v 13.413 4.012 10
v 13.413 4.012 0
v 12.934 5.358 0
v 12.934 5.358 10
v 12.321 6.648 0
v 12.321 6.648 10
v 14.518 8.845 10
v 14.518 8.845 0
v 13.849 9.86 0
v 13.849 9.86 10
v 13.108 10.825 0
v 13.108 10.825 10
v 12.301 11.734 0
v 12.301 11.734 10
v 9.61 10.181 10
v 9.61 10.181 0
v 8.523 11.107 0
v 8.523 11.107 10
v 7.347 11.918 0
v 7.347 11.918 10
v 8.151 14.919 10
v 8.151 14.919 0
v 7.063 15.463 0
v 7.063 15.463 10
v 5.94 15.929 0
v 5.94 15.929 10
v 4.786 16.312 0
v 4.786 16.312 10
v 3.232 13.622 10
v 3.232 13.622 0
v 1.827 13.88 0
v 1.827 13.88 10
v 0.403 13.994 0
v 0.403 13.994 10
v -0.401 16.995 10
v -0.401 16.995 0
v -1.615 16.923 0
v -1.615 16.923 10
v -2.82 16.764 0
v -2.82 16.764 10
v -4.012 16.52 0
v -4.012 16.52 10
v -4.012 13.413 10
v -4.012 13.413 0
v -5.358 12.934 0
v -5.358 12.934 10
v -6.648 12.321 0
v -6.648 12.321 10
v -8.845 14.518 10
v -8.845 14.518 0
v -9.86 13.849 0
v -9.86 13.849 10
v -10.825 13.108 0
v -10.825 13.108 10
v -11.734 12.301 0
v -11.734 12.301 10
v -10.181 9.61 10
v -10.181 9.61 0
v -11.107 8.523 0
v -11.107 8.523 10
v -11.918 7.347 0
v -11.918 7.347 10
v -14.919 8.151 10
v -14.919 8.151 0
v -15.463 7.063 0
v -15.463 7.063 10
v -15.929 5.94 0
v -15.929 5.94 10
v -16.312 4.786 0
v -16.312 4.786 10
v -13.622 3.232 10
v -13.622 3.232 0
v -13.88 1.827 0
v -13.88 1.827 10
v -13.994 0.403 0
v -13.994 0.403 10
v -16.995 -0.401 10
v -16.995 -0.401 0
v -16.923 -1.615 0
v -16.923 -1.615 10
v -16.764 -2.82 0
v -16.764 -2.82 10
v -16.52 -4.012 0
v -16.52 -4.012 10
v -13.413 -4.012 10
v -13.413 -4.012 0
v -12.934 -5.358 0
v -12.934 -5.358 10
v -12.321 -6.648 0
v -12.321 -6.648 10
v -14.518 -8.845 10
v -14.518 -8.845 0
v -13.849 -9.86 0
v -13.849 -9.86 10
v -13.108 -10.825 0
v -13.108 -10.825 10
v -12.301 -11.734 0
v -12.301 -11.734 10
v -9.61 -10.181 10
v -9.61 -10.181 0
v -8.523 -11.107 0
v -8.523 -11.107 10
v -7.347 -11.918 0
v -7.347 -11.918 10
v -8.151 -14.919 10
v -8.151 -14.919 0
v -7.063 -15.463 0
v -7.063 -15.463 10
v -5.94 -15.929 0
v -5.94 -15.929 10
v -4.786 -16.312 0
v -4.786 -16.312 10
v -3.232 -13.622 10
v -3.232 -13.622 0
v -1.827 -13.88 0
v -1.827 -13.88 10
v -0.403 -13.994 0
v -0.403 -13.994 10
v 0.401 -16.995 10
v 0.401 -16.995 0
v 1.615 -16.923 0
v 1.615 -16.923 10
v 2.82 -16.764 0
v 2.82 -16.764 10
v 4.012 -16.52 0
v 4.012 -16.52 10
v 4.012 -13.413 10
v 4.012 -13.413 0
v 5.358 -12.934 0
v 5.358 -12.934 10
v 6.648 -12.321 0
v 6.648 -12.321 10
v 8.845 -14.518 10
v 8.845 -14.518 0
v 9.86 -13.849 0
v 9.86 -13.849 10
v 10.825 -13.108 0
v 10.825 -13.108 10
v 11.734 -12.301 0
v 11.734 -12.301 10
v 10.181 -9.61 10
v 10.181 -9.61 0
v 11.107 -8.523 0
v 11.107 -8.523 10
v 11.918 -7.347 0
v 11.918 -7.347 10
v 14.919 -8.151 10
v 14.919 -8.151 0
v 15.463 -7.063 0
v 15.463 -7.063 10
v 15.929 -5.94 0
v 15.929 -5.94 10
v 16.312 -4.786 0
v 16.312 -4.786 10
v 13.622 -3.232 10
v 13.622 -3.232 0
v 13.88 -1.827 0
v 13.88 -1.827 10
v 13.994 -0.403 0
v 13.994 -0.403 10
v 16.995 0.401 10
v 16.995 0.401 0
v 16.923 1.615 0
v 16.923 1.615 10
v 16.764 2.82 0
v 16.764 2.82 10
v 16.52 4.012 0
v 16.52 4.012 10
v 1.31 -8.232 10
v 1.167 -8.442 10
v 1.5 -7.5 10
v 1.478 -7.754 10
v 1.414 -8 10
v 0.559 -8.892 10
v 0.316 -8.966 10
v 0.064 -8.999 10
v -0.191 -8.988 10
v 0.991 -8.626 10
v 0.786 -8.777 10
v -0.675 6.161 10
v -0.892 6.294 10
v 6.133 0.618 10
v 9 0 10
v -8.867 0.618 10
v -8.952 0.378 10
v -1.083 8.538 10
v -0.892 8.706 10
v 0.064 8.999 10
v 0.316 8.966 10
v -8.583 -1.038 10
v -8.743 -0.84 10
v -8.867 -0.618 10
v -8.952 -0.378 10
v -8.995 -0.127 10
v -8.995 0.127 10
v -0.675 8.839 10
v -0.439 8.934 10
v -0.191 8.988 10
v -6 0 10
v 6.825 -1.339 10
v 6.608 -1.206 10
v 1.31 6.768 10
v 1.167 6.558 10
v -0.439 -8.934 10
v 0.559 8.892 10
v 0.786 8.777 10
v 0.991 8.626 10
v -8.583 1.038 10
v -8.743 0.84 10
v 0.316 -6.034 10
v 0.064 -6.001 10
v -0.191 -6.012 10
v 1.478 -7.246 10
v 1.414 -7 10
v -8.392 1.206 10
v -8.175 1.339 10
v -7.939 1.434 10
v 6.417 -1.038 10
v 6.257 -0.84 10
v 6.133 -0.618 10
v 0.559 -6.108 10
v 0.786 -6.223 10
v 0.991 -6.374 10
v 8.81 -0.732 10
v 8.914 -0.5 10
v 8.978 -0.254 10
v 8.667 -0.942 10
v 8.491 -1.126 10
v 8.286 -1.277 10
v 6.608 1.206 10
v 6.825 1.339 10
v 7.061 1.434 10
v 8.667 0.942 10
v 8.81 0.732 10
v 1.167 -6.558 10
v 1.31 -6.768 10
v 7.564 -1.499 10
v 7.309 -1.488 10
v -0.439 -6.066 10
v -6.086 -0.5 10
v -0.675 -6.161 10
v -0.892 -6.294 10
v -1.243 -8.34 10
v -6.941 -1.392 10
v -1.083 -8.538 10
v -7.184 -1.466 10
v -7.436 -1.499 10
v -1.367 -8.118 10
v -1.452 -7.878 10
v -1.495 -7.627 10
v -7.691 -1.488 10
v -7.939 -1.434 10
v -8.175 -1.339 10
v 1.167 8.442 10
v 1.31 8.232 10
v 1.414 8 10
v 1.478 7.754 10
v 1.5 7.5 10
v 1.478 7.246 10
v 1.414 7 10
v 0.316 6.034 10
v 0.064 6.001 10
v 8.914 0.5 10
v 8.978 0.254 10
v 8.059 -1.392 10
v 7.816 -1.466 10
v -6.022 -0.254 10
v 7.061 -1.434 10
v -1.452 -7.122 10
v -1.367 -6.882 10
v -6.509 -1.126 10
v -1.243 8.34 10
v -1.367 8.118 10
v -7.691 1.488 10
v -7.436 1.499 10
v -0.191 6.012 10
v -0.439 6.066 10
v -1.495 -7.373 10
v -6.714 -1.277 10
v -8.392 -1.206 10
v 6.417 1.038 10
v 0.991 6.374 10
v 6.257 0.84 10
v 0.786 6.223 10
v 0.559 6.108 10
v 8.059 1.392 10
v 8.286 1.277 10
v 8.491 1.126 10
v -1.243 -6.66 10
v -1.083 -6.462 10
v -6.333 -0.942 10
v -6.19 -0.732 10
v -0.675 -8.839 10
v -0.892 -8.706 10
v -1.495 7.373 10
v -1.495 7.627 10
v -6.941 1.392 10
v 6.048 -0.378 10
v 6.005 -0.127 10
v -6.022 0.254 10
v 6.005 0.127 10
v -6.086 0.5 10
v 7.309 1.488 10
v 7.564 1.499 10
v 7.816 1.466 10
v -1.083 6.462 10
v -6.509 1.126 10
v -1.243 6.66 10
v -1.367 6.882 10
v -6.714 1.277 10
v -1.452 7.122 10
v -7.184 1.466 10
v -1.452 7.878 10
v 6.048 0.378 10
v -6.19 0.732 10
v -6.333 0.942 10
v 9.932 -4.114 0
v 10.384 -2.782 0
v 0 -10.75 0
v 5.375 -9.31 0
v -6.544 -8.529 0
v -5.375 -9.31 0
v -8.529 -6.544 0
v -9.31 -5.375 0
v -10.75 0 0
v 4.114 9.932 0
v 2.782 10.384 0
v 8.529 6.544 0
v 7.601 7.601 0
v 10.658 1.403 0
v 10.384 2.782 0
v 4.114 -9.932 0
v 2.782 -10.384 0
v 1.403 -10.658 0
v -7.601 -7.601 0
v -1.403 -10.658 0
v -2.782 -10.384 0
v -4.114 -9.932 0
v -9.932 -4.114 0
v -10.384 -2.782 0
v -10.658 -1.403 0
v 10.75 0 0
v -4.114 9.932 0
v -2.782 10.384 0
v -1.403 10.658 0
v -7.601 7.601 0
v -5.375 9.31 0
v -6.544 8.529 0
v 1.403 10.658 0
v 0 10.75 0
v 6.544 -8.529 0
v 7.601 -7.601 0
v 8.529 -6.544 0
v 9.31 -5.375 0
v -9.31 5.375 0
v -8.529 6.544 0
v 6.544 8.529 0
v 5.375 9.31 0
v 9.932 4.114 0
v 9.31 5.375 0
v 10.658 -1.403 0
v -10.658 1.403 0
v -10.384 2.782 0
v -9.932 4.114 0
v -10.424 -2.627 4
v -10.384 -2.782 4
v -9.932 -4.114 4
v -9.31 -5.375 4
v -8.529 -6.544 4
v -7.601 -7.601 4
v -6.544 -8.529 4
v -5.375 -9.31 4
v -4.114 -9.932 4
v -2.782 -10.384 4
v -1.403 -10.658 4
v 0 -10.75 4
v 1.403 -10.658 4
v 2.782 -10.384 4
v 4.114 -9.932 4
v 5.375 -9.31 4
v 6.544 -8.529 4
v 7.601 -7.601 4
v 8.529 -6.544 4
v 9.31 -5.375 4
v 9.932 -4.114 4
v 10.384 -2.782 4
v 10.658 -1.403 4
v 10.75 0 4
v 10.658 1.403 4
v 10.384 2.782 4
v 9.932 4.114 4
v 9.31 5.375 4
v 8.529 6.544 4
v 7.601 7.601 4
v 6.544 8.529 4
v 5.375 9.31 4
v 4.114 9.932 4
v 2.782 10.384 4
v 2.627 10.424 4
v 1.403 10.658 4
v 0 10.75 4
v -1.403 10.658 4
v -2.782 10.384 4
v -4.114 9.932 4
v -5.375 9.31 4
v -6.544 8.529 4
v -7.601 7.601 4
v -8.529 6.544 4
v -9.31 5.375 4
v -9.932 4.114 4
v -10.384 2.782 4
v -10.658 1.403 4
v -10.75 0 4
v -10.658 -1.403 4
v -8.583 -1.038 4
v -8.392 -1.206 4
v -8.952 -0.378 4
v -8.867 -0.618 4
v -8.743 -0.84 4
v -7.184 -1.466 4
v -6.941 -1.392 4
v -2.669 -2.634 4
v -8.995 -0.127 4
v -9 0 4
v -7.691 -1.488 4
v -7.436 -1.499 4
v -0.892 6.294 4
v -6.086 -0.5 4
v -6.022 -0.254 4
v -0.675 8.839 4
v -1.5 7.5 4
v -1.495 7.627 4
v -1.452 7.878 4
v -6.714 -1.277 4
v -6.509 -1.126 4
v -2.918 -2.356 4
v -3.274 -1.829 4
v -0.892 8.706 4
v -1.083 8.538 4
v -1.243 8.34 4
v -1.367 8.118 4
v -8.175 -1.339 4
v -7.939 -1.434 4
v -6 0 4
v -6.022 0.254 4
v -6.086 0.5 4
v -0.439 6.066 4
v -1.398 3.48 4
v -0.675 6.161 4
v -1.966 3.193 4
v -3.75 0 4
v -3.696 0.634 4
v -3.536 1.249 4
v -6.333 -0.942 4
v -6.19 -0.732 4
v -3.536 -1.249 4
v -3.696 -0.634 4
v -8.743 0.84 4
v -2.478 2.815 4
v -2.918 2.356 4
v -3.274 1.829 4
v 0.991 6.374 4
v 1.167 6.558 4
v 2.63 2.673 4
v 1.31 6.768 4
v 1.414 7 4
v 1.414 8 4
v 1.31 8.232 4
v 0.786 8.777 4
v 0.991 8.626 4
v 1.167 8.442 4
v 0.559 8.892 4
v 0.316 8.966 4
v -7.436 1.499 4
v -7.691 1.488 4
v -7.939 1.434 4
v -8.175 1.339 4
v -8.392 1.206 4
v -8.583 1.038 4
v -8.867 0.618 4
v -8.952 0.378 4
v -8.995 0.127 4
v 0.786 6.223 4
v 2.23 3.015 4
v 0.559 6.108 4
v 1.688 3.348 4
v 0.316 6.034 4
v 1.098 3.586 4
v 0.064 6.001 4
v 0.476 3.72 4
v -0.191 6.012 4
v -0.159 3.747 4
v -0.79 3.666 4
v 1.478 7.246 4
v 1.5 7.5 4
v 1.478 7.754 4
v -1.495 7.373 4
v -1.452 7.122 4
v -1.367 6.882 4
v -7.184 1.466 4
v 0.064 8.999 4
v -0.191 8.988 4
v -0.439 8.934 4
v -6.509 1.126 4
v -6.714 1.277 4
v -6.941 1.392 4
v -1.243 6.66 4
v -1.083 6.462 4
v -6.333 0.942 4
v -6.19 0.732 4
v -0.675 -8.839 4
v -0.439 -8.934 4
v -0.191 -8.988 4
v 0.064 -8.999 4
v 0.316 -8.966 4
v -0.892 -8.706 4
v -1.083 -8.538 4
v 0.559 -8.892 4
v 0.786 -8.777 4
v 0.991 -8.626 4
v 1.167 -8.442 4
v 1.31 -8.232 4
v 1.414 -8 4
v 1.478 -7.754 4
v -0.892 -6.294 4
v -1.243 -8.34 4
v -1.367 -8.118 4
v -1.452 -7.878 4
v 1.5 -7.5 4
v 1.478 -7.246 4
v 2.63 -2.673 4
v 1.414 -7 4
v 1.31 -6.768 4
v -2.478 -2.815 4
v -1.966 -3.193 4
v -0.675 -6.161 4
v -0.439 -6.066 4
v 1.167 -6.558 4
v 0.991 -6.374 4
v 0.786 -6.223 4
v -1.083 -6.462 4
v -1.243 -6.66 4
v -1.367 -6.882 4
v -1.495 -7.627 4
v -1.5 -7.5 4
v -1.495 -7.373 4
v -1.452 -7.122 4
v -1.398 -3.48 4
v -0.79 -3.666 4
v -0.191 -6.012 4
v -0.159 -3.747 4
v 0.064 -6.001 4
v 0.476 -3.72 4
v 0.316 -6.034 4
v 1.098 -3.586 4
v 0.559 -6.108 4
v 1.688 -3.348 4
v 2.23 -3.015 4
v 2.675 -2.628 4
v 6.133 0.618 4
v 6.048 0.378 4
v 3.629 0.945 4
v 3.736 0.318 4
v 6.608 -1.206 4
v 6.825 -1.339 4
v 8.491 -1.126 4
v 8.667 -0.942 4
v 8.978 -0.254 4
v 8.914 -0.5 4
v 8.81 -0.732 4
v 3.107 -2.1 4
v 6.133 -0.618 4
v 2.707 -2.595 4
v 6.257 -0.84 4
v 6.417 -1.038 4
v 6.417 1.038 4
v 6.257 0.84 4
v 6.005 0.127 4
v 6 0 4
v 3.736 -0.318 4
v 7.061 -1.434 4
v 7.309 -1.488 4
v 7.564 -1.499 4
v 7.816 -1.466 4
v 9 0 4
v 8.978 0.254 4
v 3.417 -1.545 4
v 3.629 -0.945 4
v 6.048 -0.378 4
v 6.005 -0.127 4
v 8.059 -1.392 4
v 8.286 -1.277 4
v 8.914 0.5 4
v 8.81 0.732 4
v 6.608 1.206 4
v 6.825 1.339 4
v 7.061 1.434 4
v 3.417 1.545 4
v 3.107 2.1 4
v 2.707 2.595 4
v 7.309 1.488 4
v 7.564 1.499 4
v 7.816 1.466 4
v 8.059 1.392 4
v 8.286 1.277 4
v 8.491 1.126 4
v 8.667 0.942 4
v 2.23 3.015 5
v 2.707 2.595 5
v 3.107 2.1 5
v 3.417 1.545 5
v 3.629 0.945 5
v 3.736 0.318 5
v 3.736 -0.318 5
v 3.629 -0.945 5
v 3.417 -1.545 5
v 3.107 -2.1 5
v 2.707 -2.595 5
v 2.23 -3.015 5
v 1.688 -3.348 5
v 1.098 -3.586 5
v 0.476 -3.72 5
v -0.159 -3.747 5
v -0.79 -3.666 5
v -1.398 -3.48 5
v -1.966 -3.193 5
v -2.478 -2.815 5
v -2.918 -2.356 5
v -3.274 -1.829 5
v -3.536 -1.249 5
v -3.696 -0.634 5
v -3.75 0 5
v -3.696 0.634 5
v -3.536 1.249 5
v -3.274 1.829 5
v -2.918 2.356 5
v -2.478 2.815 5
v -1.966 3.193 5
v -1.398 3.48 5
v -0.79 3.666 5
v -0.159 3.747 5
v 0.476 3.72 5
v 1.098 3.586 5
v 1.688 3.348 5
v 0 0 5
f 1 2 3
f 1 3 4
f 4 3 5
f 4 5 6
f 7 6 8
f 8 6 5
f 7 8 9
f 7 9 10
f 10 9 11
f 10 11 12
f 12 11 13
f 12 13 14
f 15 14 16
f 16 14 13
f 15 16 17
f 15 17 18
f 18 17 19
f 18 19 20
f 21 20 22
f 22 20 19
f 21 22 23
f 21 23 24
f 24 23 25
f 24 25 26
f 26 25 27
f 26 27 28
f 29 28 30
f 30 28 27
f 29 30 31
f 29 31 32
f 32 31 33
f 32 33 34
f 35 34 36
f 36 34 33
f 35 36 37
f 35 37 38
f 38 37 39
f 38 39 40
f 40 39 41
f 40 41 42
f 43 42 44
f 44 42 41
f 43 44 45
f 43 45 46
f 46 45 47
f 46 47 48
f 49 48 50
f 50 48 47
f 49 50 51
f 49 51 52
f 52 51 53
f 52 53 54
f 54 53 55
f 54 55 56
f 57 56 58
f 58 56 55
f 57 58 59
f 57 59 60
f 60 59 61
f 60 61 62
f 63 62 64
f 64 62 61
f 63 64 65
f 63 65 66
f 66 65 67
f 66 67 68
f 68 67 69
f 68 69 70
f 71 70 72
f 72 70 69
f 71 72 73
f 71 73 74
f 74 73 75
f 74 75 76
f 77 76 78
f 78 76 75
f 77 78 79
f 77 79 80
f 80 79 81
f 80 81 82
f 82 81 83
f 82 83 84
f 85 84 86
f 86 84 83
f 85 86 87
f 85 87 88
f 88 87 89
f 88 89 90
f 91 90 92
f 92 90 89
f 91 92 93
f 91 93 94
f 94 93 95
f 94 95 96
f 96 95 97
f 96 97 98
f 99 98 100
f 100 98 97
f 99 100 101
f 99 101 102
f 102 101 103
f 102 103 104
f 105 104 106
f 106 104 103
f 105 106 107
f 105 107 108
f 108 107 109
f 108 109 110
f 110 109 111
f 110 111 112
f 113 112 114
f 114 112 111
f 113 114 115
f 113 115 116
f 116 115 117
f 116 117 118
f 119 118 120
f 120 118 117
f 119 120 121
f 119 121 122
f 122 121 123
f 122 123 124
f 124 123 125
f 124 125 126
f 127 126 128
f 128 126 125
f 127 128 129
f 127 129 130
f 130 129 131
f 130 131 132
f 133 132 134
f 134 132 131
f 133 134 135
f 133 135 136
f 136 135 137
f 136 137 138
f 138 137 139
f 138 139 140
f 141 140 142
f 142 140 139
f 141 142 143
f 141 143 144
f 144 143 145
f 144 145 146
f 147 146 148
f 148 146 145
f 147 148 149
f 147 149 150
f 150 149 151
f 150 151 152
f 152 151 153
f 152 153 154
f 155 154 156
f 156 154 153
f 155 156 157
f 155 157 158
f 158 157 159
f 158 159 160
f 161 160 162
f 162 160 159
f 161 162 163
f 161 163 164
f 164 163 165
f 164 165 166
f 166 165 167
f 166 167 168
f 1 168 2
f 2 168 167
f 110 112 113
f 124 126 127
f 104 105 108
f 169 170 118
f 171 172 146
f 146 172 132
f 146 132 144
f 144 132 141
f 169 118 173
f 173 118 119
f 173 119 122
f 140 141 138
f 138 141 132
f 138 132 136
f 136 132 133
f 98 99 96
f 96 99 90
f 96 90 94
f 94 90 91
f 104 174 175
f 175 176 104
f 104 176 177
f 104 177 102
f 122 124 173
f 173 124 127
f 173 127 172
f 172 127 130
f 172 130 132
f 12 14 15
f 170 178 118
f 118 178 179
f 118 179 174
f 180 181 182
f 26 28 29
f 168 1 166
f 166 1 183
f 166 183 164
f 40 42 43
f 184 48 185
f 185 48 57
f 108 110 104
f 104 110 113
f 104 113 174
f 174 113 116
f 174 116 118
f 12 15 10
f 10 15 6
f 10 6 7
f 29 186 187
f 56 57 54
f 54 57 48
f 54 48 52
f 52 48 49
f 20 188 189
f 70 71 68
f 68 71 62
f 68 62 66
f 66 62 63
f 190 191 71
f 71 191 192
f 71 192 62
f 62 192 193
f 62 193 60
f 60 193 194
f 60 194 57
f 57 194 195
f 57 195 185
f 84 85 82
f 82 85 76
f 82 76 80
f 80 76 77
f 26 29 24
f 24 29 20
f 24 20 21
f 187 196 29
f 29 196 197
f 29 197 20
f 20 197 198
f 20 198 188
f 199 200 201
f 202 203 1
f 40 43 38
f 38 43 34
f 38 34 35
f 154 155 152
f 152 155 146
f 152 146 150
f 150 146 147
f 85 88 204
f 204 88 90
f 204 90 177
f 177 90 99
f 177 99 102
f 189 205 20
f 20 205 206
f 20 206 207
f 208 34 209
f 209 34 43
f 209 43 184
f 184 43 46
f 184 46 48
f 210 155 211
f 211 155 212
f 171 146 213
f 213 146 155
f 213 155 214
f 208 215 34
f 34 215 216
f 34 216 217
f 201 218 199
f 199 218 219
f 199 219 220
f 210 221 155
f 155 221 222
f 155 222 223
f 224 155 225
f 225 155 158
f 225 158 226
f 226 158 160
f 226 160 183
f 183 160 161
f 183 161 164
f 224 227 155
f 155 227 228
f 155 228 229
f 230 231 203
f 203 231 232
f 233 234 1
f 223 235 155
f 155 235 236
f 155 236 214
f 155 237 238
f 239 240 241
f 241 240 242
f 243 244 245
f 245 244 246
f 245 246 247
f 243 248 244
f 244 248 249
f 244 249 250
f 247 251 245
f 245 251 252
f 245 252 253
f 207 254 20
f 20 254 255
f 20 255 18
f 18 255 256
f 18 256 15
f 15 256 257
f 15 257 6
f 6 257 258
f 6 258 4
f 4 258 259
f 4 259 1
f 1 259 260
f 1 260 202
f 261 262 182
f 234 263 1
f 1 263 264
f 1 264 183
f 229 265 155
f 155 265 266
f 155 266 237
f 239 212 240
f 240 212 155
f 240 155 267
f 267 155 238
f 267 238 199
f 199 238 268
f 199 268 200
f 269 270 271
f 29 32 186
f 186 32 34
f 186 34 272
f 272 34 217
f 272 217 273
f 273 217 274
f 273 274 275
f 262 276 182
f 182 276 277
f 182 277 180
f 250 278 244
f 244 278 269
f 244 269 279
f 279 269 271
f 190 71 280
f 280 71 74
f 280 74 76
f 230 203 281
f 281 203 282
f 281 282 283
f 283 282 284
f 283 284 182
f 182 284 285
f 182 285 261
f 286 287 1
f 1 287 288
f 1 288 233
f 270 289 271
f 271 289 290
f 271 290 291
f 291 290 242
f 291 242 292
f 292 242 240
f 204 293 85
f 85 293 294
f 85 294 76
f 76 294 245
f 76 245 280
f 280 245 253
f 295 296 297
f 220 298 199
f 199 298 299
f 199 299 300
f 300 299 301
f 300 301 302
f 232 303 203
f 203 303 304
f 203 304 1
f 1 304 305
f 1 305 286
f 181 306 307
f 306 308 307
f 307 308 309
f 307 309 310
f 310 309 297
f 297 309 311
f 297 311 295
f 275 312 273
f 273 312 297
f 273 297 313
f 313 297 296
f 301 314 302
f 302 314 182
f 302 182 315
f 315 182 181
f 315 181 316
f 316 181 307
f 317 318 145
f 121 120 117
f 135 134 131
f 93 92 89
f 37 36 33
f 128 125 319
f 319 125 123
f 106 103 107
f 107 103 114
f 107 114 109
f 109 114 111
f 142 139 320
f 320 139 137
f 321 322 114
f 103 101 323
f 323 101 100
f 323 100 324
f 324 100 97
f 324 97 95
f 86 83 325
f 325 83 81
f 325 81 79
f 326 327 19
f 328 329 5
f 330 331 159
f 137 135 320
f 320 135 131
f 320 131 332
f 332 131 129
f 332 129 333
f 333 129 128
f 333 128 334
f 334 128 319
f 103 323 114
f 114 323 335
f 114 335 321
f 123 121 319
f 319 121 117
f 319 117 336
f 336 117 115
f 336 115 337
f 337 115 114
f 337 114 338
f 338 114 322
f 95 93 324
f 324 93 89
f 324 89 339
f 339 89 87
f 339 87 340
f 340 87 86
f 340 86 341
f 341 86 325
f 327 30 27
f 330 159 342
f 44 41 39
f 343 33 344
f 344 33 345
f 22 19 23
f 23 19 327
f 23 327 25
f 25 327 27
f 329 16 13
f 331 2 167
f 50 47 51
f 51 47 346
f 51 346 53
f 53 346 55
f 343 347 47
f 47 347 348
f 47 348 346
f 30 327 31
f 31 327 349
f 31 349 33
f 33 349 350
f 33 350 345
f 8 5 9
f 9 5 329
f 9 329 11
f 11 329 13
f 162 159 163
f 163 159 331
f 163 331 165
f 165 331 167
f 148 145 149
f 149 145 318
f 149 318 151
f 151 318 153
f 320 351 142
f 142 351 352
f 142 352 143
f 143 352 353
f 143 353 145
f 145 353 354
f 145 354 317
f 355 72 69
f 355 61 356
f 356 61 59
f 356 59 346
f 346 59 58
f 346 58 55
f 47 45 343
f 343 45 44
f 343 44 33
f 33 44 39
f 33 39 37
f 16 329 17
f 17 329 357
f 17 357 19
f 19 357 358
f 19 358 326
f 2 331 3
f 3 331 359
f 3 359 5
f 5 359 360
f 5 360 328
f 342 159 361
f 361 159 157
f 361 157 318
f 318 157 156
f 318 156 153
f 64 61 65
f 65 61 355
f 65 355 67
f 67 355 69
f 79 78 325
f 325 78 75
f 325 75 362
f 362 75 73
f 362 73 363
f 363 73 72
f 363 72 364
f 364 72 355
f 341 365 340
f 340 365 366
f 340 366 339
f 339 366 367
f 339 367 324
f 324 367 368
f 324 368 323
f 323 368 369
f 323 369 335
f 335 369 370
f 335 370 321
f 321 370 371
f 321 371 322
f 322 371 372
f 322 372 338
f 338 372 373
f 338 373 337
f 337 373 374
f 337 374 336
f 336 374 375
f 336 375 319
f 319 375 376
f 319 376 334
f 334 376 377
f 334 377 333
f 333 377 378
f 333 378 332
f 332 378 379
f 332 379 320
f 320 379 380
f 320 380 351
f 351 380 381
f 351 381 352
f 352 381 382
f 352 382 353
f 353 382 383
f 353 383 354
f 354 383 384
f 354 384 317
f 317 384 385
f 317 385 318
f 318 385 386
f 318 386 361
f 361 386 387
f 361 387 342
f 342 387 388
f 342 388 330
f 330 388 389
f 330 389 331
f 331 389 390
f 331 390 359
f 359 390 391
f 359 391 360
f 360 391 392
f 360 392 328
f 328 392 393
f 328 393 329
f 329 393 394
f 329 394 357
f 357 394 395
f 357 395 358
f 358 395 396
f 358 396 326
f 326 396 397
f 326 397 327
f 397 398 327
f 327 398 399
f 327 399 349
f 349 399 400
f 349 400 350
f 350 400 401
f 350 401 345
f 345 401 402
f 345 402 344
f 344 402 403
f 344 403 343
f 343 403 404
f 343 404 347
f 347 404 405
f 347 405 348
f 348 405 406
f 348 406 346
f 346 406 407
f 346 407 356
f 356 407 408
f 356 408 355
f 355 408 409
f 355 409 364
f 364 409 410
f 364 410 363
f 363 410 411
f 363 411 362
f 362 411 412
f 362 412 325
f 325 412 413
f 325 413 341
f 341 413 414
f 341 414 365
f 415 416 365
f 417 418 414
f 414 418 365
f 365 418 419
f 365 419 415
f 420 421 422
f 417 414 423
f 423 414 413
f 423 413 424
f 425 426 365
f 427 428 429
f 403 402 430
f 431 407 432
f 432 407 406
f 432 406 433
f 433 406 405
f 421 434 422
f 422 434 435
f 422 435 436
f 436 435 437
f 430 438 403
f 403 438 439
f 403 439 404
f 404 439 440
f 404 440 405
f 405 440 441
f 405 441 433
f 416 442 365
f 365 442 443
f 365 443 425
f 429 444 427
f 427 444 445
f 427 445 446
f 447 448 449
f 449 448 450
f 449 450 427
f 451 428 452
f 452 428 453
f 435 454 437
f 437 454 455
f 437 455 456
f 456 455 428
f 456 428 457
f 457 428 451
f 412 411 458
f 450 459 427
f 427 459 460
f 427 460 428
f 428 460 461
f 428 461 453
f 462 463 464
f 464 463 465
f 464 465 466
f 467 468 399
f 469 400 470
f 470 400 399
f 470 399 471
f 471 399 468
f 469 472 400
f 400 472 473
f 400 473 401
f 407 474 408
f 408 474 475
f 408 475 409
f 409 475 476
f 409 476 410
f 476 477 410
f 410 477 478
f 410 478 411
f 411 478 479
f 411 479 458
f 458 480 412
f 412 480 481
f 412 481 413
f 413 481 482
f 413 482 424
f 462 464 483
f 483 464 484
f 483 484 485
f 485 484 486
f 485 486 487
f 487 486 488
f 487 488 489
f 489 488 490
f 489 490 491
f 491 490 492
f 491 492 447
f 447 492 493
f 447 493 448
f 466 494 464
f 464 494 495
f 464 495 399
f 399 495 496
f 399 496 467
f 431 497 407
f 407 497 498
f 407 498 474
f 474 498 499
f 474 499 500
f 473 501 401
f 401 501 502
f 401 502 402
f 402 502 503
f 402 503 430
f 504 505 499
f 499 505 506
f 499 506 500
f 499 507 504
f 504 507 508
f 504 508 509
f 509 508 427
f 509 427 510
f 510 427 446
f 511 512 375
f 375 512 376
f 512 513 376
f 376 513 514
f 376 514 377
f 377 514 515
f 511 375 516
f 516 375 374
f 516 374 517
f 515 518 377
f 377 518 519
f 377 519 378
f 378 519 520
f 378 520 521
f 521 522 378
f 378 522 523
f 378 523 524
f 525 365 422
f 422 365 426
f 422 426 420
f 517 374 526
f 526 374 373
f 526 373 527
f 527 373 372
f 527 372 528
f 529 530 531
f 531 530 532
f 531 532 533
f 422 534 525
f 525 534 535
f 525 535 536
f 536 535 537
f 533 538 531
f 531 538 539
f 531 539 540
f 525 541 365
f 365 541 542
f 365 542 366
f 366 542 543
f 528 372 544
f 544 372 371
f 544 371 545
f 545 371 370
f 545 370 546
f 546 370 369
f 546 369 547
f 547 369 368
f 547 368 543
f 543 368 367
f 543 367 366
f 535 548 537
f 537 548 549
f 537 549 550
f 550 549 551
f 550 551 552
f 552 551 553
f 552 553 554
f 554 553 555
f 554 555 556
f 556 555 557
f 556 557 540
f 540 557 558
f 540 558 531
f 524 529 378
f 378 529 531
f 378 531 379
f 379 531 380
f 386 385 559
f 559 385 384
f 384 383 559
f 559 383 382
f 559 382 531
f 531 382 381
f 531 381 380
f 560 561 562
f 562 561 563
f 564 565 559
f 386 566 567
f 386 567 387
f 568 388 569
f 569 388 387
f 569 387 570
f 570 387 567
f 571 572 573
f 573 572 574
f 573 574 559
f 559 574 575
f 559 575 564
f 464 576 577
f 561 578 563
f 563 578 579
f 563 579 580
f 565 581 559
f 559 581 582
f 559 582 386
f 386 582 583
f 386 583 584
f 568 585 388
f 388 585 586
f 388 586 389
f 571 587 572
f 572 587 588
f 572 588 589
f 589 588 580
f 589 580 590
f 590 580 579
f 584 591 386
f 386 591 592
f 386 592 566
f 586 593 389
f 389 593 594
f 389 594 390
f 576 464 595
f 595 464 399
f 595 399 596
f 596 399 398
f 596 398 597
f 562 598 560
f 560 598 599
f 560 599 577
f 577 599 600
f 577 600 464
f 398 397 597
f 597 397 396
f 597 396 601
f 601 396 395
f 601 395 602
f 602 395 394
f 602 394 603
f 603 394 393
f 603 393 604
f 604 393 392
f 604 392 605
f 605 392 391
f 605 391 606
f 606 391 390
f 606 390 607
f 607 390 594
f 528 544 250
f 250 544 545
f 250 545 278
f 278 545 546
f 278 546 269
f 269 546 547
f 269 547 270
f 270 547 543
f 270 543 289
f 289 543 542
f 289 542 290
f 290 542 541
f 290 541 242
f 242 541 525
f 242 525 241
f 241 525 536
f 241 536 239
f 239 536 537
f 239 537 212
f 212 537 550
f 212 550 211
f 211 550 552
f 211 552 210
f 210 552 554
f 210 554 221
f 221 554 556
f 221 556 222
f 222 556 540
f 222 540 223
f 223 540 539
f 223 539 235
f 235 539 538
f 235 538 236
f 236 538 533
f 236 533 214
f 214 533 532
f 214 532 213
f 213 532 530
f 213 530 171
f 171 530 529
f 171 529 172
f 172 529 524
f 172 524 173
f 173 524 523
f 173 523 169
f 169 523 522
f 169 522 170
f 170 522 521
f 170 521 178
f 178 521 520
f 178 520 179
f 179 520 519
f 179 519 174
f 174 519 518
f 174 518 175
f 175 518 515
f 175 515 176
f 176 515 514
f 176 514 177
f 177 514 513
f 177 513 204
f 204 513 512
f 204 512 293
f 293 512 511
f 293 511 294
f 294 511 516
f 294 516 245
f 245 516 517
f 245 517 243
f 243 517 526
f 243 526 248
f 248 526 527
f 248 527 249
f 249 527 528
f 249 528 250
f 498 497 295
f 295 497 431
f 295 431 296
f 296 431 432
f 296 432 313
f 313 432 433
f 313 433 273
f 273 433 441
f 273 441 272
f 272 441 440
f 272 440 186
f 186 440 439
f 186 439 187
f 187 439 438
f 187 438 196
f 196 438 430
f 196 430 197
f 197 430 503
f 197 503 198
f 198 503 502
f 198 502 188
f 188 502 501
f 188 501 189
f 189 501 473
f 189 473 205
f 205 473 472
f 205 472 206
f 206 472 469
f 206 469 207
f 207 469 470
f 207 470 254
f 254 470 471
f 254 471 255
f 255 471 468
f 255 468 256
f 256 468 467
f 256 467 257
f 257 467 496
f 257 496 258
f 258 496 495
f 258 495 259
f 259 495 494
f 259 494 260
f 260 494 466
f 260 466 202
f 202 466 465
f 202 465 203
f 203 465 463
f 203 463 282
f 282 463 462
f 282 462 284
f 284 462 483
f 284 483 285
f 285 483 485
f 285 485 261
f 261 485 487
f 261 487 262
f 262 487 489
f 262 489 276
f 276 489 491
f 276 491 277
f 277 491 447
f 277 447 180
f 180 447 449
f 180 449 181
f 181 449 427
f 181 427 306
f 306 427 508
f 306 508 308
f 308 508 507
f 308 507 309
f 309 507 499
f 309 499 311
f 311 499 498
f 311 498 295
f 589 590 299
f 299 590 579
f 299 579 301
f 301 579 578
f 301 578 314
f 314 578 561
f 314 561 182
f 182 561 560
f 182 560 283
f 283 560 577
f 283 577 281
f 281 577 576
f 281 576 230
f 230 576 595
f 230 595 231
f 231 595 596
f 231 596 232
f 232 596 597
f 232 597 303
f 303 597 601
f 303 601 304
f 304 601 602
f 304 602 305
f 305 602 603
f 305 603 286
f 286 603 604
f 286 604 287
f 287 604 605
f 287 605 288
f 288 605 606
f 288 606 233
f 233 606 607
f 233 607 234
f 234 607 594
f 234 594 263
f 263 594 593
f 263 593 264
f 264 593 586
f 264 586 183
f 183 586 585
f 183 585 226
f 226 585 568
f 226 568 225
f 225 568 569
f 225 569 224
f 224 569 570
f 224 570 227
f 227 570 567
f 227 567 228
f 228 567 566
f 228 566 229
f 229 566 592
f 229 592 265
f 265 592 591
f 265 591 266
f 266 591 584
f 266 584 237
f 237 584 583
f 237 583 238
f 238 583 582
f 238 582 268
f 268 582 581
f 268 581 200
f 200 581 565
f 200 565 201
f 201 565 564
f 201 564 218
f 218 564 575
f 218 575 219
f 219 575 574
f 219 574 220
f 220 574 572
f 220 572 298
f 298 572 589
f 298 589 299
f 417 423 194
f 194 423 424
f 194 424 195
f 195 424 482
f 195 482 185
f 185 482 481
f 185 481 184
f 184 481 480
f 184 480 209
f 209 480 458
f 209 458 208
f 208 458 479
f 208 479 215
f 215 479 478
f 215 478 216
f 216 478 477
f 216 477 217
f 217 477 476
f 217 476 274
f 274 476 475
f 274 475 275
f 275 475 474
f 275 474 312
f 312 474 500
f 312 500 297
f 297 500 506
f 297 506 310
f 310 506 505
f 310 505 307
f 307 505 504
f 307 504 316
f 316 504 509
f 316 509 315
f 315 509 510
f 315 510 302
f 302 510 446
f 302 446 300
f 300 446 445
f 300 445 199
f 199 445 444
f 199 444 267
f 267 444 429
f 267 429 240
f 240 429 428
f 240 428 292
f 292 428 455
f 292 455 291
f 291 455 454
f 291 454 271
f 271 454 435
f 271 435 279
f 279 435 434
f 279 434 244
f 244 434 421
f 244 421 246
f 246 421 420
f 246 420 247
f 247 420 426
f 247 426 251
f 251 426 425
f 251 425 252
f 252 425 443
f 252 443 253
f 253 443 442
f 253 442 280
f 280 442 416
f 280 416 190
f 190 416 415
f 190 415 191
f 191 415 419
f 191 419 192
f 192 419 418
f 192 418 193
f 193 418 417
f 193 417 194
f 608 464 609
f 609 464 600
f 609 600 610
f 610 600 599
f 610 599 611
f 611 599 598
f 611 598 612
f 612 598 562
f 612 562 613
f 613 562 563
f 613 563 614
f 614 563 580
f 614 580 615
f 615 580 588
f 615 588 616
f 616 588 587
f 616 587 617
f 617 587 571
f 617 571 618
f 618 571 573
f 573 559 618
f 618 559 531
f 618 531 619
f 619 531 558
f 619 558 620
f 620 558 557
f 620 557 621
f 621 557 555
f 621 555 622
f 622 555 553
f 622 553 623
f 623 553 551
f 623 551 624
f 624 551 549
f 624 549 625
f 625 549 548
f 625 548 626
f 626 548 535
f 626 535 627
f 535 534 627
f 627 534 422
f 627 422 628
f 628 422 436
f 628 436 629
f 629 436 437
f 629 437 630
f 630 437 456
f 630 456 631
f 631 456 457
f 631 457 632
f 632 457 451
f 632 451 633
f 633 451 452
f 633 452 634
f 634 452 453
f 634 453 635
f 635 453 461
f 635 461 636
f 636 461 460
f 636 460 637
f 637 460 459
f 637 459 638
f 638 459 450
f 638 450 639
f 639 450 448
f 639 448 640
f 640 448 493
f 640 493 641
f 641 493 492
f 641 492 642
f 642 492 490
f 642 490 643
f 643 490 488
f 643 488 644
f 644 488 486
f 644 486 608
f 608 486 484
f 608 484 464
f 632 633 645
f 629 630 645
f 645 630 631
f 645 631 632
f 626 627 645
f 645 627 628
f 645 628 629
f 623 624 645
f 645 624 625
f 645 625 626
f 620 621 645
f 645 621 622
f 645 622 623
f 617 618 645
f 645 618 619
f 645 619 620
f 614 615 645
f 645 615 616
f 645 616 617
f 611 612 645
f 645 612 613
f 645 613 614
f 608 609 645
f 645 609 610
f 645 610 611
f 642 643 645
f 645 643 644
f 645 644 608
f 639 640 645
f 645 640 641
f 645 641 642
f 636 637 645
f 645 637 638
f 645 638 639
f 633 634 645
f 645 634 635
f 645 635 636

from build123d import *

# Parameters (mm, degrees)
SKETCH_1_R          = 14
EXTRUDE_2_DEPTH     = 10
SKETCH_2_R          = 10.75
CUT_EXTRUDE_1_DEPTH = 4
SKETCH_3_R          = 1.5
CUT_EXTRUDE_2_DEPTH = 10
SKETCH_4_R          = 3.75
CUT_EXTRUDE_3_DEPTH = 1


with BuildPart() as part:
    # 草圖1 → 填料-伸長2 (new body)
    with BuildSketch(Plane.XY):
        Circle(SKETCH_1_R)
        with BuildLine():
            Line((-4.011695199, 16.519875957), (-4.011695199, 13.412915478))
            ThreePointArc((-4.011695199, 13.412915478), (-1.827366691, 13.880228059), (0.403482024, 13.994184587))
            Line((0.403482024, 13.994184587), (-0.40065852, 16.995277954))
            ThreePointArc((-0.40065852, 16.995277954), (-2.218945268, 16.854562643), (-4.011695199, 16.519875957))
        make_face()
        with BuildLine():
            Line((4.785708024, 16.312479846), (3.232227785, 13.621773143))
            ThreePointArc((3.232227785, 13.621773143), (5.357568053, 12.934313455), (7.346517976, 11.917578346))
            Line((7.346517976, 11.917578346), (8.15065852, 14.918671713))
            ThreePointArc((8.15065852, 14.918671713), (6.50561835, 15.705952053), (4.785708024, 16.312479846))
        make_face()
        with BuildLine():
            Line((12.300784646, 11.734167933), (9.610077944, 10.180687694))
            ThreePointArc((9.610077944, 10.180687694), (11.106946764, 8.522660006), (12.32106037, 6.647666611))
            Line((12.32106037, 6.647666611), (14.518013193, 8.844619434))
            ThreePointArc((14.518013193, 8.844619434), (13.487006785, 10.348944293), (12.300784646, 11.734167933))
        make_face()
        with BuildLine():
            Line((16.519875957, 4.011695199), (13.412915478, 4.011695199))
            ThreePointArc((13.412915478, 4.011695199), (13.852451348, 2.027212779), (14, 0))
            ThreePointArc((14, 0), (13.998546071, -0.201761965), (13.994184587, -0.403482024))
            Line((13.994184587, -0.403482024), (16.995277954, 0.40065852))
            ThreePointArc((16.995277954, 0.40065852), (16.854562643, 2.218945268), (16.519875957, 4.011695199))
        make_face()
        with BuildLine():
            Line((16.312479846, -4.785708024), (13.621773143, -3.232227785))
            ThreePointArc((13.621773143, -3.232227785), (12.934313455, -5.357568053), (11.917578346, -7.346517976))
            Line((11.917578346, -7.346517976), (14.918671713, -8.15065852))
            ThreePointArc((14.918671713, -8.15065852), (15.705952053, -6.50561835), (16.312479846, -4.785708024))
        make_face()
        with BuildLine():
            ThreePointArc((10.180687694, -9.610077944), (8.522660006, -11.106946764), (6.647666611, -12.32106037))
            Line((6.647666611, -12.32106037), (8.844619434, -14.518013193))
            ThreePointArc((8.844619434, -14.518013193), (10.348944293, -13.487006785), (11.734167933, -12.300784646))
            Line((11.734167933, -12.300784646), (10.180687694, -9.610077944))
        make_face()
        with BuildLine():
            ThreePointArc((4.011695199, -13.412915478), (1.827366691, -13.880228059), (-0.403482024, -13.994184587))
            Line((-0.403482024, -13.994184587), (0.40065852, -16.995277954))
            ThreePointArc((0.40065852, -16.995277954), (2.218945268, -16.854562643), (4.011695199, -16.519875957))
            Line((4.011695199, -16.519875957), (4.011695199, -13.412915478))
        make_face()
        with BuildLine():
            ThreePointArc((-3.232227785, -13.621773143), (-5.357568053, -12.934313455), (-7.346517976, -11.917578346))
            Line((-7.346517976, -11.917578346), (-8.15065852, -14.918671713))
            ThreePointArc((-8.15065852, -14.918671713), (-6.50561835, -15.705952053), (-4.785708024, -16.312479846))
            Line((-4.785708024, -16.312479846), (-3.232227785, -13.621773143))
        make_face()
        with BuildLine():
            ThreePointArc((-9.610077944, -10.180687694), (-11.106946764, -8.522660006), (-12.32106037, -6.647666611))
            Line((-12.32106037, -6.647666611), (-14.518013193, -8.844619434))
            ThreePointArc((-14.518013193, -8.844619434), (-13.487006785, -10.348944293), (-12.300784646, -11.734167933))
            Line((-12.300784646, -11.734167933), (-9.610077944, -10.180687694))
        make_face()
        with BuildLine():
            ThreePointArc((-13.412915478, -4.011695199), (-13.880228059, -1.827366691), (-13.994184587, 0.403482024))
            Line((-13.994184587, 0.403482024), (-16.995277954, -0.40065852))
            ThreePointArc((-16.995277954, -0.40065852), (-16.854562643, -2.218945268), (-16.519875957, -4.011695199))
            Line((-16.519875957, -4.011695199), (-13.412915478, -4.011695199))
        make_face()
        with BuildLine():
            ThreePointArc((-13.621773143, 3.232227785), (-12.934313455, 5.357568053), (-11.917578346, 7.346517976))
            Line((-11.917578346, 7.346517976), (-14.918671713, 8.15065852))
            ThreePointArc((-14.918671713, 8.15065852), (-15.705952053, 6.50561835), (-16.312479846, 4.785708024))
            Line((-16.312479846, 4.785708024), (-13.621773143, 3.232227785))
        make_face()
        with BuildLine():
            Line((-11.734167933, 12.300784646), (-10.180687694, 9.610077944))
            ThreePointArc((-10.180687694, 9.610077944), (-8.522660006, 11.106946764), (-6.647666611, 12.32106037))
            Line((-6.647666611, 12.32106037), (-8.844619434, 14.518013193))
            ThreePointArc((-8.844619434, 14.518013193), (-10.348944293, 13.487006785), (-11.734167933, 12.300784646))
        make_face()
    extrude(amount=EXTRUDE_2_DEPTH)

    # 草圖2 → 除料-伸長1 (cut)
    with BuildSketch(Plane(origin=(0, 0, 0), x_dir=(-1, 0, 0), z_dir=(0, 0, -1))):
        Circle(SKETCH_2_R)
    extrude(amount=-CUT_EXTRUDE_1_DEPTH, mode=Mode.SUBTRACT)

    # 草圖3 → 除料-伸長2 (cut)
    with BuildSketch(Plane.XY.offset(10)):
        with Locations((-7.5, 0)):
            Circle(SKETCH_3_R)
        with Locations((7.5, 0)):
            Circle(SKETCH_3_R)
        with Locations((0, 7.5)):
            Circle(SKETCH_3_R)
        with Locations((0, -7.5)):
            Circle(SKETCH_3_R)
    extrude(amount=-CUT_EXTRUDE_2_DEPTH, mode=Mode.SUBTRACT)

    # 草圖4 → 除料-伸長3 (cut)
    with BuildSketch(Plane(origin=(0, 0, 4), x_dir=(-1, 0, 0), z_dir=(0, 0, -1))):
        Circle(SKETCH_4_R)
    extrude(amount=-CUT_EXTRUDE_3_DEPTH, mode=Mode.SUBTRACT)


solid = part.part
